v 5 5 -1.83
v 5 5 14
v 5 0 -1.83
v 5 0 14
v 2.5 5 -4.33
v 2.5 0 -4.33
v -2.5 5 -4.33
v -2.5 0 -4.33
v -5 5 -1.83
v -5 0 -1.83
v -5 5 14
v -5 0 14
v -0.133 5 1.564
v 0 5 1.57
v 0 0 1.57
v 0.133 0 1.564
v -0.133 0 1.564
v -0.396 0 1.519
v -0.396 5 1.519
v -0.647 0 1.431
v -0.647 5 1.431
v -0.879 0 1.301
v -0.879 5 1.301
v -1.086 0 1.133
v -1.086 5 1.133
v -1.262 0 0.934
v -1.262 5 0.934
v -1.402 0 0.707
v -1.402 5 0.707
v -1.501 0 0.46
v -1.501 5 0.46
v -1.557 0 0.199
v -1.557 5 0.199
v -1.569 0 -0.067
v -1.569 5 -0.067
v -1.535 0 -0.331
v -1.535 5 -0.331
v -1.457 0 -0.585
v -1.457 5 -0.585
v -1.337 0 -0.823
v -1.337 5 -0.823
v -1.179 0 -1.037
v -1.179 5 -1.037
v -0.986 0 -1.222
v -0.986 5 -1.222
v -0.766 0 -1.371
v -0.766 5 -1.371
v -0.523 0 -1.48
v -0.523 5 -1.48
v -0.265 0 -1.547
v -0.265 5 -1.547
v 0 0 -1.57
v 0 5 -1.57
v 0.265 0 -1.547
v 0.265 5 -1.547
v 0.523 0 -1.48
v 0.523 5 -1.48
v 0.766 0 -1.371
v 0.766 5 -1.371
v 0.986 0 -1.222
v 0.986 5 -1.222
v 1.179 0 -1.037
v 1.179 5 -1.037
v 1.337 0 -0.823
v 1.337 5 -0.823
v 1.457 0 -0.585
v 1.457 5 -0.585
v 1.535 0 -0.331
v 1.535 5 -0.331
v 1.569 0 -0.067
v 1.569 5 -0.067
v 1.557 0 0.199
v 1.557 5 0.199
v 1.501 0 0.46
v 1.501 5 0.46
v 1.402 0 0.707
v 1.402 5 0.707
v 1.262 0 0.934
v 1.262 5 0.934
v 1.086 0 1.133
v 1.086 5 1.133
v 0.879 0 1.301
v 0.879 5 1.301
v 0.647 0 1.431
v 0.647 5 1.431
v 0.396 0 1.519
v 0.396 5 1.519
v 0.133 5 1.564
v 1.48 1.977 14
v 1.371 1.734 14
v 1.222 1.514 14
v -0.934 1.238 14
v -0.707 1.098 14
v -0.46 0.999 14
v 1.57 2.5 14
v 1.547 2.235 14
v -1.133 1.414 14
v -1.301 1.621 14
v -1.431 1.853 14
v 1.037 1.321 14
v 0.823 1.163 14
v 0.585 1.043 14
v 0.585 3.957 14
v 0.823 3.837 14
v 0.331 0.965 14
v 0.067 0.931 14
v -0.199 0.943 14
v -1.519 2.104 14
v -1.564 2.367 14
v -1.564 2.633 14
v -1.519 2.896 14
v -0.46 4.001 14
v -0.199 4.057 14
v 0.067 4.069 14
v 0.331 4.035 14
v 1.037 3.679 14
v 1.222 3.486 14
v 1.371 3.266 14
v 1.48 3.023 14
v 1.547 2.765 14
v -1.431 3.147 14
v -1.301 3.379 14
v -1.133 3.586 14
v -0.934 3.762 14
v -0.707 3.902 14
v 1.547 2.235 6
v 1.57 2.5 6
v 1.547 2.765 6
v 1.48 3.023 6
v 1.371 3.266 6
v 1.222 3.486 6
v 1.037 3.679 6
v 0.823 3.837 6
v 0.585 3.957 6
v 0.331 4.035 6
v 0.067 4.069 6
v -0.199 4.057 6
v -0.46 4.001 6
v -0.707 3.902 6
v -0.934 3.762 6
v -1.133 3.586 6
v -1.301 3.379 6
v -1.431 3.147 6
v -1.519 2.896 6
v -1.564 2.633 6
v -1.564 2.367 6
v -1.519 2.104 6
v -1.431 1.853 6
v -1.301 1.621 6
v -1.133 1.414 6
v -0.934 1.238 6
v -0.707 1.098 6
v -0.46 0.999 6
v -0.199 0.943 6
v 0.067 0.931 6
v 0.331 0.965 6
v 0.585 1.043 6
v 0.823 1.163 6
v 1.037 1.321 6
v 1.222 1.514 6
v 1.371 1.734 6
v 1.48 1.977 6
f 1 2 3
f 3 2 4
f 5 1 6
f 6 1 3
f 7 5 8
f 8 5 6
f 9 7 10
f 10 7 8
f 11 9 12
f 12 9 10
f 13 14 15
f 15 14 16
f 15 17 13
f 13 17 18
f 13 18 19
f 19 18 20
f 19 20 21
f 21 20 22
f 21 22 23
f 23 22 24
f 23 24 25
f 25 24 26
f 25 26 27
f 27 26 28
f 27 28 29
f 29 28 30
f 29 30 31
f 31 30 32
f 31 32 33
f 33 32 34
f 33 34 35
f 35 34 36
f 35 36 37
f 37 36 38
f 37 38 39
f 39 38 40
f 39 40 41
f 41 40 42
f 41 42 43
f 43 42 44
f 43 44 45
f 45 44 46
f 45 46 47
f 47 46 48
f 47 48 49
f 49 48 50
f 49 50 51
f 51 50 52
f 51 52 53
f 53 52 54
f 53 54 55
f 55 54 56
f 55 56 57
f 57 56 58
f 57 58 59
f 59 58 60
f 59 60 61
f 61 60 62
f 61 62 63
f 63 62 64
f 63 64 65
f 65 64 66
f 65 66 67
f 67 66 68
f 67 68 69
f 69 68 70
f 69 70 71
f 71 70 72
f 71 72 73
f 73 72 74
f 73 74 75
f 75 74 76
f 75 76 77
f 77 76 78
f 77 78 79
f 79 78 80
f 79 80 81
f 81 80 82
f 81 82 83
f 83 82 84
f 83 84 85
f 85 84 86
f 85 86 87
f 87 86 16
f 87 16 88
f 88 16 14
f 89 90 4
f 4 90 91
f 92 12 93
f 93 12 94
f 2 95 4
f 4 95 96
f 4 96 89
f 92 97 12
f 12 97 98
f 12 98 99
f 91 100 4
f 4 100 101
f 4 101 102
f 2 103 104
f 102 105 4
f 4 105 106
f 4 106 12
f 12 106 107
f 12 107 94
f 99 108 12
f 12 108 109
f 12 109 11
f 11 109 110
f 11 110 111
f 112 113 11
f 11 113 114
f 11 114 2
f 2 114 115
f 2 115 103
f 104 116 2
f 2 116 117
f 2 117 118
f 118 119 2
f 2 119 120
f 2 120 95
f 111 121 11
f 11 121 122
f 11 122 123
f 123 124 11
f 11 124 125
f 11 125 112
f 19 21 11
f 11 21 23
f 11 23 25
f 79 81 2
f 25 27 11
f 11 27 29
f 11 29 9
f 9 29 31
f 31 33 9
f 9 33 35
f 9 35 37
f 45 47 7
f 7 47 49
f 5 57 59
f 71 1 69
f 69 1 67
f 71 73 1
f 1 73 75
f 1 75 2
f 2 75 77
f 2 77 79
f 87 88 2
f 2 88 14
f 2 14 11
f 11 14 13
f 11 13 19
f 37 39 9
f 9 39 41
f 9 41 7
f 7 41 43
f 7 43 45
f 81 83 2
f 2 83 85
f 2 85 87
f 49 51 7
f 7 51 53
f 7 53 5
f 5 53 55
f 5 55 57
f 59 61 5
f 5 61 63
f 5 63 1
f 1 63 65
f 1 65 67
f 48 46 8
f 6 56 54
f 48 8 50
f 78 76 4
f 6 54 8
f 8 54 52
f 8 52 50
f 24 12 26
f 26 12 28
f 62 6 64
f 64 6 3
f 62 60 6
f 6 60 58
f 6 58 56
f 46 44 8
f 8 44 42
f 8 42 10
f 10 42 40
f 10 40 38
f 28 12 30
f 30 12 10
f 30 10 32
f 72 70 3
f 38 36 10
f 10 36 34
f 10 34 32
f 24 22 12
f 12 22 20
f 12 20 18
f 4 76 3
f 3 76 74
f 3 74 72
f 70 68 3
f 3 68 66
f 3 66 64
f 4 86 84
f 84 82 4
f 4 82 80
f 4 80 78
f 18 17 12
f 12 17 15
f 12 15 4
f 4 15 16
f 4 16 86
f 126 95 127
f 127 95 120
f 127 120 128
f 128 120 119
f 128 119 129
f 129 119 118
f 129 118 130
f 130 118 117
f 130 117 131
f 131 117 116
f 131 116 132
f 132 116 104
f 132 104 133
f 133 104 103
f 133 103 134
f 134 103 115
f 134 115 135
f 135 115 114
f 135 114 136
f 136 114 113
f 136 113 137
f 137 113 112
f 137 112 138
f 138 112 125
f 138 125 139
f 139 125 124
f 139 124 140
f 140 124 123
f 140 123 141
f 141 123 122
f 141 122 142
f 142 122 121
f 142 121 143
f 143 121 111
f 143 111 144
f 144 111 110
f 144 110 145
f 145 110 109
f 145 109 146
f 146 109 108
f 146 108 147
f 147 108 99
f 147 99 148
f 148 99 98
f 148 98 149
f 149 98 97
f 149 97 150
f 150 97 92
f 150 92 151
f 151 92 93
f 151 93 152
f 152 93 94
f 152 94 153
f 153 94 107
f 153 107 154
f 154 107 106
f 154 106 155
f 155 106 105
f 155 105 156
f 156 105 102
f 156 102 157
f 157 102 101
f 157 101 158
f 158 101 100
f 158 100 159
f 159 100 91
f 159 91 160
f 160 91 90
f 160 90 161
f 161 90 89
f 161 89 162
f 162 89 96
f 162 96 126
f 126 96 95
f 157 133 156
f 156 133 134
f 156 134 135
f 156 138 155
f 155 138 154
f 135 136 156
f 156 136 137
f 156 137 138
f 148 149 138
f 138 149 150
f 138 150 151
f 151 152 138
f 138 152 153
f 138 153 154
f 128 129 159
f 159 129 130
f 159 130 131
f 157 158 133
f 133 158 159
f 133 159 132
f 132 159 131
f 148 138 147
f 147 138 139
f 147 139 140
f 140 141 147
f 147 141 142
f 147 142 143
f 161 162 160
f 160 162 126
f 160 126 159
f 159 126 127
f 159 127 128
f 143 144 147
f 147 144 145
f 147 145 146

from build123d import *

# Parameters (mm, degrees)
SKETCH2_R           = 1.57
BOSS_EXTRUDE1_DEPTH = 5
SKETCH3_R           = 1.57
CUT_EXTRUDE1_DEPTH  = 8


with BuildPart() as part:
    # Sketch2 → Boss-Extrude1 (new body)
    with BuildSketch(Plane(origin=(0, 0, 0), x_dir=(1, 0, 0), z_dir=(0, 1, 0))):
        Polygon((-5, 1.830127019), (-5, 0), (-5, -14), (5, -14), (5, 0), (5, 1.830127019), (2.5, 4.330127019), (-2.5, 4.330127019), align=None)
        Circle(SKETCH2_R, mode=Mode.SUBTRACT)
    extrude(amount=BOSS_EXTRUDE1_DEPTH)

    # Sketch3 → Cut-Extrude1 (cut)
    with BuildSketch(Plane.XY.offset(14)):
        with Locations((0, 2.5)):
            Circle(SKETCH3_R)
    extrude(amount=-CUT_EXTRUDE1_DEPTH, mode=Mode.SUBTRACT)


solid = part.part
